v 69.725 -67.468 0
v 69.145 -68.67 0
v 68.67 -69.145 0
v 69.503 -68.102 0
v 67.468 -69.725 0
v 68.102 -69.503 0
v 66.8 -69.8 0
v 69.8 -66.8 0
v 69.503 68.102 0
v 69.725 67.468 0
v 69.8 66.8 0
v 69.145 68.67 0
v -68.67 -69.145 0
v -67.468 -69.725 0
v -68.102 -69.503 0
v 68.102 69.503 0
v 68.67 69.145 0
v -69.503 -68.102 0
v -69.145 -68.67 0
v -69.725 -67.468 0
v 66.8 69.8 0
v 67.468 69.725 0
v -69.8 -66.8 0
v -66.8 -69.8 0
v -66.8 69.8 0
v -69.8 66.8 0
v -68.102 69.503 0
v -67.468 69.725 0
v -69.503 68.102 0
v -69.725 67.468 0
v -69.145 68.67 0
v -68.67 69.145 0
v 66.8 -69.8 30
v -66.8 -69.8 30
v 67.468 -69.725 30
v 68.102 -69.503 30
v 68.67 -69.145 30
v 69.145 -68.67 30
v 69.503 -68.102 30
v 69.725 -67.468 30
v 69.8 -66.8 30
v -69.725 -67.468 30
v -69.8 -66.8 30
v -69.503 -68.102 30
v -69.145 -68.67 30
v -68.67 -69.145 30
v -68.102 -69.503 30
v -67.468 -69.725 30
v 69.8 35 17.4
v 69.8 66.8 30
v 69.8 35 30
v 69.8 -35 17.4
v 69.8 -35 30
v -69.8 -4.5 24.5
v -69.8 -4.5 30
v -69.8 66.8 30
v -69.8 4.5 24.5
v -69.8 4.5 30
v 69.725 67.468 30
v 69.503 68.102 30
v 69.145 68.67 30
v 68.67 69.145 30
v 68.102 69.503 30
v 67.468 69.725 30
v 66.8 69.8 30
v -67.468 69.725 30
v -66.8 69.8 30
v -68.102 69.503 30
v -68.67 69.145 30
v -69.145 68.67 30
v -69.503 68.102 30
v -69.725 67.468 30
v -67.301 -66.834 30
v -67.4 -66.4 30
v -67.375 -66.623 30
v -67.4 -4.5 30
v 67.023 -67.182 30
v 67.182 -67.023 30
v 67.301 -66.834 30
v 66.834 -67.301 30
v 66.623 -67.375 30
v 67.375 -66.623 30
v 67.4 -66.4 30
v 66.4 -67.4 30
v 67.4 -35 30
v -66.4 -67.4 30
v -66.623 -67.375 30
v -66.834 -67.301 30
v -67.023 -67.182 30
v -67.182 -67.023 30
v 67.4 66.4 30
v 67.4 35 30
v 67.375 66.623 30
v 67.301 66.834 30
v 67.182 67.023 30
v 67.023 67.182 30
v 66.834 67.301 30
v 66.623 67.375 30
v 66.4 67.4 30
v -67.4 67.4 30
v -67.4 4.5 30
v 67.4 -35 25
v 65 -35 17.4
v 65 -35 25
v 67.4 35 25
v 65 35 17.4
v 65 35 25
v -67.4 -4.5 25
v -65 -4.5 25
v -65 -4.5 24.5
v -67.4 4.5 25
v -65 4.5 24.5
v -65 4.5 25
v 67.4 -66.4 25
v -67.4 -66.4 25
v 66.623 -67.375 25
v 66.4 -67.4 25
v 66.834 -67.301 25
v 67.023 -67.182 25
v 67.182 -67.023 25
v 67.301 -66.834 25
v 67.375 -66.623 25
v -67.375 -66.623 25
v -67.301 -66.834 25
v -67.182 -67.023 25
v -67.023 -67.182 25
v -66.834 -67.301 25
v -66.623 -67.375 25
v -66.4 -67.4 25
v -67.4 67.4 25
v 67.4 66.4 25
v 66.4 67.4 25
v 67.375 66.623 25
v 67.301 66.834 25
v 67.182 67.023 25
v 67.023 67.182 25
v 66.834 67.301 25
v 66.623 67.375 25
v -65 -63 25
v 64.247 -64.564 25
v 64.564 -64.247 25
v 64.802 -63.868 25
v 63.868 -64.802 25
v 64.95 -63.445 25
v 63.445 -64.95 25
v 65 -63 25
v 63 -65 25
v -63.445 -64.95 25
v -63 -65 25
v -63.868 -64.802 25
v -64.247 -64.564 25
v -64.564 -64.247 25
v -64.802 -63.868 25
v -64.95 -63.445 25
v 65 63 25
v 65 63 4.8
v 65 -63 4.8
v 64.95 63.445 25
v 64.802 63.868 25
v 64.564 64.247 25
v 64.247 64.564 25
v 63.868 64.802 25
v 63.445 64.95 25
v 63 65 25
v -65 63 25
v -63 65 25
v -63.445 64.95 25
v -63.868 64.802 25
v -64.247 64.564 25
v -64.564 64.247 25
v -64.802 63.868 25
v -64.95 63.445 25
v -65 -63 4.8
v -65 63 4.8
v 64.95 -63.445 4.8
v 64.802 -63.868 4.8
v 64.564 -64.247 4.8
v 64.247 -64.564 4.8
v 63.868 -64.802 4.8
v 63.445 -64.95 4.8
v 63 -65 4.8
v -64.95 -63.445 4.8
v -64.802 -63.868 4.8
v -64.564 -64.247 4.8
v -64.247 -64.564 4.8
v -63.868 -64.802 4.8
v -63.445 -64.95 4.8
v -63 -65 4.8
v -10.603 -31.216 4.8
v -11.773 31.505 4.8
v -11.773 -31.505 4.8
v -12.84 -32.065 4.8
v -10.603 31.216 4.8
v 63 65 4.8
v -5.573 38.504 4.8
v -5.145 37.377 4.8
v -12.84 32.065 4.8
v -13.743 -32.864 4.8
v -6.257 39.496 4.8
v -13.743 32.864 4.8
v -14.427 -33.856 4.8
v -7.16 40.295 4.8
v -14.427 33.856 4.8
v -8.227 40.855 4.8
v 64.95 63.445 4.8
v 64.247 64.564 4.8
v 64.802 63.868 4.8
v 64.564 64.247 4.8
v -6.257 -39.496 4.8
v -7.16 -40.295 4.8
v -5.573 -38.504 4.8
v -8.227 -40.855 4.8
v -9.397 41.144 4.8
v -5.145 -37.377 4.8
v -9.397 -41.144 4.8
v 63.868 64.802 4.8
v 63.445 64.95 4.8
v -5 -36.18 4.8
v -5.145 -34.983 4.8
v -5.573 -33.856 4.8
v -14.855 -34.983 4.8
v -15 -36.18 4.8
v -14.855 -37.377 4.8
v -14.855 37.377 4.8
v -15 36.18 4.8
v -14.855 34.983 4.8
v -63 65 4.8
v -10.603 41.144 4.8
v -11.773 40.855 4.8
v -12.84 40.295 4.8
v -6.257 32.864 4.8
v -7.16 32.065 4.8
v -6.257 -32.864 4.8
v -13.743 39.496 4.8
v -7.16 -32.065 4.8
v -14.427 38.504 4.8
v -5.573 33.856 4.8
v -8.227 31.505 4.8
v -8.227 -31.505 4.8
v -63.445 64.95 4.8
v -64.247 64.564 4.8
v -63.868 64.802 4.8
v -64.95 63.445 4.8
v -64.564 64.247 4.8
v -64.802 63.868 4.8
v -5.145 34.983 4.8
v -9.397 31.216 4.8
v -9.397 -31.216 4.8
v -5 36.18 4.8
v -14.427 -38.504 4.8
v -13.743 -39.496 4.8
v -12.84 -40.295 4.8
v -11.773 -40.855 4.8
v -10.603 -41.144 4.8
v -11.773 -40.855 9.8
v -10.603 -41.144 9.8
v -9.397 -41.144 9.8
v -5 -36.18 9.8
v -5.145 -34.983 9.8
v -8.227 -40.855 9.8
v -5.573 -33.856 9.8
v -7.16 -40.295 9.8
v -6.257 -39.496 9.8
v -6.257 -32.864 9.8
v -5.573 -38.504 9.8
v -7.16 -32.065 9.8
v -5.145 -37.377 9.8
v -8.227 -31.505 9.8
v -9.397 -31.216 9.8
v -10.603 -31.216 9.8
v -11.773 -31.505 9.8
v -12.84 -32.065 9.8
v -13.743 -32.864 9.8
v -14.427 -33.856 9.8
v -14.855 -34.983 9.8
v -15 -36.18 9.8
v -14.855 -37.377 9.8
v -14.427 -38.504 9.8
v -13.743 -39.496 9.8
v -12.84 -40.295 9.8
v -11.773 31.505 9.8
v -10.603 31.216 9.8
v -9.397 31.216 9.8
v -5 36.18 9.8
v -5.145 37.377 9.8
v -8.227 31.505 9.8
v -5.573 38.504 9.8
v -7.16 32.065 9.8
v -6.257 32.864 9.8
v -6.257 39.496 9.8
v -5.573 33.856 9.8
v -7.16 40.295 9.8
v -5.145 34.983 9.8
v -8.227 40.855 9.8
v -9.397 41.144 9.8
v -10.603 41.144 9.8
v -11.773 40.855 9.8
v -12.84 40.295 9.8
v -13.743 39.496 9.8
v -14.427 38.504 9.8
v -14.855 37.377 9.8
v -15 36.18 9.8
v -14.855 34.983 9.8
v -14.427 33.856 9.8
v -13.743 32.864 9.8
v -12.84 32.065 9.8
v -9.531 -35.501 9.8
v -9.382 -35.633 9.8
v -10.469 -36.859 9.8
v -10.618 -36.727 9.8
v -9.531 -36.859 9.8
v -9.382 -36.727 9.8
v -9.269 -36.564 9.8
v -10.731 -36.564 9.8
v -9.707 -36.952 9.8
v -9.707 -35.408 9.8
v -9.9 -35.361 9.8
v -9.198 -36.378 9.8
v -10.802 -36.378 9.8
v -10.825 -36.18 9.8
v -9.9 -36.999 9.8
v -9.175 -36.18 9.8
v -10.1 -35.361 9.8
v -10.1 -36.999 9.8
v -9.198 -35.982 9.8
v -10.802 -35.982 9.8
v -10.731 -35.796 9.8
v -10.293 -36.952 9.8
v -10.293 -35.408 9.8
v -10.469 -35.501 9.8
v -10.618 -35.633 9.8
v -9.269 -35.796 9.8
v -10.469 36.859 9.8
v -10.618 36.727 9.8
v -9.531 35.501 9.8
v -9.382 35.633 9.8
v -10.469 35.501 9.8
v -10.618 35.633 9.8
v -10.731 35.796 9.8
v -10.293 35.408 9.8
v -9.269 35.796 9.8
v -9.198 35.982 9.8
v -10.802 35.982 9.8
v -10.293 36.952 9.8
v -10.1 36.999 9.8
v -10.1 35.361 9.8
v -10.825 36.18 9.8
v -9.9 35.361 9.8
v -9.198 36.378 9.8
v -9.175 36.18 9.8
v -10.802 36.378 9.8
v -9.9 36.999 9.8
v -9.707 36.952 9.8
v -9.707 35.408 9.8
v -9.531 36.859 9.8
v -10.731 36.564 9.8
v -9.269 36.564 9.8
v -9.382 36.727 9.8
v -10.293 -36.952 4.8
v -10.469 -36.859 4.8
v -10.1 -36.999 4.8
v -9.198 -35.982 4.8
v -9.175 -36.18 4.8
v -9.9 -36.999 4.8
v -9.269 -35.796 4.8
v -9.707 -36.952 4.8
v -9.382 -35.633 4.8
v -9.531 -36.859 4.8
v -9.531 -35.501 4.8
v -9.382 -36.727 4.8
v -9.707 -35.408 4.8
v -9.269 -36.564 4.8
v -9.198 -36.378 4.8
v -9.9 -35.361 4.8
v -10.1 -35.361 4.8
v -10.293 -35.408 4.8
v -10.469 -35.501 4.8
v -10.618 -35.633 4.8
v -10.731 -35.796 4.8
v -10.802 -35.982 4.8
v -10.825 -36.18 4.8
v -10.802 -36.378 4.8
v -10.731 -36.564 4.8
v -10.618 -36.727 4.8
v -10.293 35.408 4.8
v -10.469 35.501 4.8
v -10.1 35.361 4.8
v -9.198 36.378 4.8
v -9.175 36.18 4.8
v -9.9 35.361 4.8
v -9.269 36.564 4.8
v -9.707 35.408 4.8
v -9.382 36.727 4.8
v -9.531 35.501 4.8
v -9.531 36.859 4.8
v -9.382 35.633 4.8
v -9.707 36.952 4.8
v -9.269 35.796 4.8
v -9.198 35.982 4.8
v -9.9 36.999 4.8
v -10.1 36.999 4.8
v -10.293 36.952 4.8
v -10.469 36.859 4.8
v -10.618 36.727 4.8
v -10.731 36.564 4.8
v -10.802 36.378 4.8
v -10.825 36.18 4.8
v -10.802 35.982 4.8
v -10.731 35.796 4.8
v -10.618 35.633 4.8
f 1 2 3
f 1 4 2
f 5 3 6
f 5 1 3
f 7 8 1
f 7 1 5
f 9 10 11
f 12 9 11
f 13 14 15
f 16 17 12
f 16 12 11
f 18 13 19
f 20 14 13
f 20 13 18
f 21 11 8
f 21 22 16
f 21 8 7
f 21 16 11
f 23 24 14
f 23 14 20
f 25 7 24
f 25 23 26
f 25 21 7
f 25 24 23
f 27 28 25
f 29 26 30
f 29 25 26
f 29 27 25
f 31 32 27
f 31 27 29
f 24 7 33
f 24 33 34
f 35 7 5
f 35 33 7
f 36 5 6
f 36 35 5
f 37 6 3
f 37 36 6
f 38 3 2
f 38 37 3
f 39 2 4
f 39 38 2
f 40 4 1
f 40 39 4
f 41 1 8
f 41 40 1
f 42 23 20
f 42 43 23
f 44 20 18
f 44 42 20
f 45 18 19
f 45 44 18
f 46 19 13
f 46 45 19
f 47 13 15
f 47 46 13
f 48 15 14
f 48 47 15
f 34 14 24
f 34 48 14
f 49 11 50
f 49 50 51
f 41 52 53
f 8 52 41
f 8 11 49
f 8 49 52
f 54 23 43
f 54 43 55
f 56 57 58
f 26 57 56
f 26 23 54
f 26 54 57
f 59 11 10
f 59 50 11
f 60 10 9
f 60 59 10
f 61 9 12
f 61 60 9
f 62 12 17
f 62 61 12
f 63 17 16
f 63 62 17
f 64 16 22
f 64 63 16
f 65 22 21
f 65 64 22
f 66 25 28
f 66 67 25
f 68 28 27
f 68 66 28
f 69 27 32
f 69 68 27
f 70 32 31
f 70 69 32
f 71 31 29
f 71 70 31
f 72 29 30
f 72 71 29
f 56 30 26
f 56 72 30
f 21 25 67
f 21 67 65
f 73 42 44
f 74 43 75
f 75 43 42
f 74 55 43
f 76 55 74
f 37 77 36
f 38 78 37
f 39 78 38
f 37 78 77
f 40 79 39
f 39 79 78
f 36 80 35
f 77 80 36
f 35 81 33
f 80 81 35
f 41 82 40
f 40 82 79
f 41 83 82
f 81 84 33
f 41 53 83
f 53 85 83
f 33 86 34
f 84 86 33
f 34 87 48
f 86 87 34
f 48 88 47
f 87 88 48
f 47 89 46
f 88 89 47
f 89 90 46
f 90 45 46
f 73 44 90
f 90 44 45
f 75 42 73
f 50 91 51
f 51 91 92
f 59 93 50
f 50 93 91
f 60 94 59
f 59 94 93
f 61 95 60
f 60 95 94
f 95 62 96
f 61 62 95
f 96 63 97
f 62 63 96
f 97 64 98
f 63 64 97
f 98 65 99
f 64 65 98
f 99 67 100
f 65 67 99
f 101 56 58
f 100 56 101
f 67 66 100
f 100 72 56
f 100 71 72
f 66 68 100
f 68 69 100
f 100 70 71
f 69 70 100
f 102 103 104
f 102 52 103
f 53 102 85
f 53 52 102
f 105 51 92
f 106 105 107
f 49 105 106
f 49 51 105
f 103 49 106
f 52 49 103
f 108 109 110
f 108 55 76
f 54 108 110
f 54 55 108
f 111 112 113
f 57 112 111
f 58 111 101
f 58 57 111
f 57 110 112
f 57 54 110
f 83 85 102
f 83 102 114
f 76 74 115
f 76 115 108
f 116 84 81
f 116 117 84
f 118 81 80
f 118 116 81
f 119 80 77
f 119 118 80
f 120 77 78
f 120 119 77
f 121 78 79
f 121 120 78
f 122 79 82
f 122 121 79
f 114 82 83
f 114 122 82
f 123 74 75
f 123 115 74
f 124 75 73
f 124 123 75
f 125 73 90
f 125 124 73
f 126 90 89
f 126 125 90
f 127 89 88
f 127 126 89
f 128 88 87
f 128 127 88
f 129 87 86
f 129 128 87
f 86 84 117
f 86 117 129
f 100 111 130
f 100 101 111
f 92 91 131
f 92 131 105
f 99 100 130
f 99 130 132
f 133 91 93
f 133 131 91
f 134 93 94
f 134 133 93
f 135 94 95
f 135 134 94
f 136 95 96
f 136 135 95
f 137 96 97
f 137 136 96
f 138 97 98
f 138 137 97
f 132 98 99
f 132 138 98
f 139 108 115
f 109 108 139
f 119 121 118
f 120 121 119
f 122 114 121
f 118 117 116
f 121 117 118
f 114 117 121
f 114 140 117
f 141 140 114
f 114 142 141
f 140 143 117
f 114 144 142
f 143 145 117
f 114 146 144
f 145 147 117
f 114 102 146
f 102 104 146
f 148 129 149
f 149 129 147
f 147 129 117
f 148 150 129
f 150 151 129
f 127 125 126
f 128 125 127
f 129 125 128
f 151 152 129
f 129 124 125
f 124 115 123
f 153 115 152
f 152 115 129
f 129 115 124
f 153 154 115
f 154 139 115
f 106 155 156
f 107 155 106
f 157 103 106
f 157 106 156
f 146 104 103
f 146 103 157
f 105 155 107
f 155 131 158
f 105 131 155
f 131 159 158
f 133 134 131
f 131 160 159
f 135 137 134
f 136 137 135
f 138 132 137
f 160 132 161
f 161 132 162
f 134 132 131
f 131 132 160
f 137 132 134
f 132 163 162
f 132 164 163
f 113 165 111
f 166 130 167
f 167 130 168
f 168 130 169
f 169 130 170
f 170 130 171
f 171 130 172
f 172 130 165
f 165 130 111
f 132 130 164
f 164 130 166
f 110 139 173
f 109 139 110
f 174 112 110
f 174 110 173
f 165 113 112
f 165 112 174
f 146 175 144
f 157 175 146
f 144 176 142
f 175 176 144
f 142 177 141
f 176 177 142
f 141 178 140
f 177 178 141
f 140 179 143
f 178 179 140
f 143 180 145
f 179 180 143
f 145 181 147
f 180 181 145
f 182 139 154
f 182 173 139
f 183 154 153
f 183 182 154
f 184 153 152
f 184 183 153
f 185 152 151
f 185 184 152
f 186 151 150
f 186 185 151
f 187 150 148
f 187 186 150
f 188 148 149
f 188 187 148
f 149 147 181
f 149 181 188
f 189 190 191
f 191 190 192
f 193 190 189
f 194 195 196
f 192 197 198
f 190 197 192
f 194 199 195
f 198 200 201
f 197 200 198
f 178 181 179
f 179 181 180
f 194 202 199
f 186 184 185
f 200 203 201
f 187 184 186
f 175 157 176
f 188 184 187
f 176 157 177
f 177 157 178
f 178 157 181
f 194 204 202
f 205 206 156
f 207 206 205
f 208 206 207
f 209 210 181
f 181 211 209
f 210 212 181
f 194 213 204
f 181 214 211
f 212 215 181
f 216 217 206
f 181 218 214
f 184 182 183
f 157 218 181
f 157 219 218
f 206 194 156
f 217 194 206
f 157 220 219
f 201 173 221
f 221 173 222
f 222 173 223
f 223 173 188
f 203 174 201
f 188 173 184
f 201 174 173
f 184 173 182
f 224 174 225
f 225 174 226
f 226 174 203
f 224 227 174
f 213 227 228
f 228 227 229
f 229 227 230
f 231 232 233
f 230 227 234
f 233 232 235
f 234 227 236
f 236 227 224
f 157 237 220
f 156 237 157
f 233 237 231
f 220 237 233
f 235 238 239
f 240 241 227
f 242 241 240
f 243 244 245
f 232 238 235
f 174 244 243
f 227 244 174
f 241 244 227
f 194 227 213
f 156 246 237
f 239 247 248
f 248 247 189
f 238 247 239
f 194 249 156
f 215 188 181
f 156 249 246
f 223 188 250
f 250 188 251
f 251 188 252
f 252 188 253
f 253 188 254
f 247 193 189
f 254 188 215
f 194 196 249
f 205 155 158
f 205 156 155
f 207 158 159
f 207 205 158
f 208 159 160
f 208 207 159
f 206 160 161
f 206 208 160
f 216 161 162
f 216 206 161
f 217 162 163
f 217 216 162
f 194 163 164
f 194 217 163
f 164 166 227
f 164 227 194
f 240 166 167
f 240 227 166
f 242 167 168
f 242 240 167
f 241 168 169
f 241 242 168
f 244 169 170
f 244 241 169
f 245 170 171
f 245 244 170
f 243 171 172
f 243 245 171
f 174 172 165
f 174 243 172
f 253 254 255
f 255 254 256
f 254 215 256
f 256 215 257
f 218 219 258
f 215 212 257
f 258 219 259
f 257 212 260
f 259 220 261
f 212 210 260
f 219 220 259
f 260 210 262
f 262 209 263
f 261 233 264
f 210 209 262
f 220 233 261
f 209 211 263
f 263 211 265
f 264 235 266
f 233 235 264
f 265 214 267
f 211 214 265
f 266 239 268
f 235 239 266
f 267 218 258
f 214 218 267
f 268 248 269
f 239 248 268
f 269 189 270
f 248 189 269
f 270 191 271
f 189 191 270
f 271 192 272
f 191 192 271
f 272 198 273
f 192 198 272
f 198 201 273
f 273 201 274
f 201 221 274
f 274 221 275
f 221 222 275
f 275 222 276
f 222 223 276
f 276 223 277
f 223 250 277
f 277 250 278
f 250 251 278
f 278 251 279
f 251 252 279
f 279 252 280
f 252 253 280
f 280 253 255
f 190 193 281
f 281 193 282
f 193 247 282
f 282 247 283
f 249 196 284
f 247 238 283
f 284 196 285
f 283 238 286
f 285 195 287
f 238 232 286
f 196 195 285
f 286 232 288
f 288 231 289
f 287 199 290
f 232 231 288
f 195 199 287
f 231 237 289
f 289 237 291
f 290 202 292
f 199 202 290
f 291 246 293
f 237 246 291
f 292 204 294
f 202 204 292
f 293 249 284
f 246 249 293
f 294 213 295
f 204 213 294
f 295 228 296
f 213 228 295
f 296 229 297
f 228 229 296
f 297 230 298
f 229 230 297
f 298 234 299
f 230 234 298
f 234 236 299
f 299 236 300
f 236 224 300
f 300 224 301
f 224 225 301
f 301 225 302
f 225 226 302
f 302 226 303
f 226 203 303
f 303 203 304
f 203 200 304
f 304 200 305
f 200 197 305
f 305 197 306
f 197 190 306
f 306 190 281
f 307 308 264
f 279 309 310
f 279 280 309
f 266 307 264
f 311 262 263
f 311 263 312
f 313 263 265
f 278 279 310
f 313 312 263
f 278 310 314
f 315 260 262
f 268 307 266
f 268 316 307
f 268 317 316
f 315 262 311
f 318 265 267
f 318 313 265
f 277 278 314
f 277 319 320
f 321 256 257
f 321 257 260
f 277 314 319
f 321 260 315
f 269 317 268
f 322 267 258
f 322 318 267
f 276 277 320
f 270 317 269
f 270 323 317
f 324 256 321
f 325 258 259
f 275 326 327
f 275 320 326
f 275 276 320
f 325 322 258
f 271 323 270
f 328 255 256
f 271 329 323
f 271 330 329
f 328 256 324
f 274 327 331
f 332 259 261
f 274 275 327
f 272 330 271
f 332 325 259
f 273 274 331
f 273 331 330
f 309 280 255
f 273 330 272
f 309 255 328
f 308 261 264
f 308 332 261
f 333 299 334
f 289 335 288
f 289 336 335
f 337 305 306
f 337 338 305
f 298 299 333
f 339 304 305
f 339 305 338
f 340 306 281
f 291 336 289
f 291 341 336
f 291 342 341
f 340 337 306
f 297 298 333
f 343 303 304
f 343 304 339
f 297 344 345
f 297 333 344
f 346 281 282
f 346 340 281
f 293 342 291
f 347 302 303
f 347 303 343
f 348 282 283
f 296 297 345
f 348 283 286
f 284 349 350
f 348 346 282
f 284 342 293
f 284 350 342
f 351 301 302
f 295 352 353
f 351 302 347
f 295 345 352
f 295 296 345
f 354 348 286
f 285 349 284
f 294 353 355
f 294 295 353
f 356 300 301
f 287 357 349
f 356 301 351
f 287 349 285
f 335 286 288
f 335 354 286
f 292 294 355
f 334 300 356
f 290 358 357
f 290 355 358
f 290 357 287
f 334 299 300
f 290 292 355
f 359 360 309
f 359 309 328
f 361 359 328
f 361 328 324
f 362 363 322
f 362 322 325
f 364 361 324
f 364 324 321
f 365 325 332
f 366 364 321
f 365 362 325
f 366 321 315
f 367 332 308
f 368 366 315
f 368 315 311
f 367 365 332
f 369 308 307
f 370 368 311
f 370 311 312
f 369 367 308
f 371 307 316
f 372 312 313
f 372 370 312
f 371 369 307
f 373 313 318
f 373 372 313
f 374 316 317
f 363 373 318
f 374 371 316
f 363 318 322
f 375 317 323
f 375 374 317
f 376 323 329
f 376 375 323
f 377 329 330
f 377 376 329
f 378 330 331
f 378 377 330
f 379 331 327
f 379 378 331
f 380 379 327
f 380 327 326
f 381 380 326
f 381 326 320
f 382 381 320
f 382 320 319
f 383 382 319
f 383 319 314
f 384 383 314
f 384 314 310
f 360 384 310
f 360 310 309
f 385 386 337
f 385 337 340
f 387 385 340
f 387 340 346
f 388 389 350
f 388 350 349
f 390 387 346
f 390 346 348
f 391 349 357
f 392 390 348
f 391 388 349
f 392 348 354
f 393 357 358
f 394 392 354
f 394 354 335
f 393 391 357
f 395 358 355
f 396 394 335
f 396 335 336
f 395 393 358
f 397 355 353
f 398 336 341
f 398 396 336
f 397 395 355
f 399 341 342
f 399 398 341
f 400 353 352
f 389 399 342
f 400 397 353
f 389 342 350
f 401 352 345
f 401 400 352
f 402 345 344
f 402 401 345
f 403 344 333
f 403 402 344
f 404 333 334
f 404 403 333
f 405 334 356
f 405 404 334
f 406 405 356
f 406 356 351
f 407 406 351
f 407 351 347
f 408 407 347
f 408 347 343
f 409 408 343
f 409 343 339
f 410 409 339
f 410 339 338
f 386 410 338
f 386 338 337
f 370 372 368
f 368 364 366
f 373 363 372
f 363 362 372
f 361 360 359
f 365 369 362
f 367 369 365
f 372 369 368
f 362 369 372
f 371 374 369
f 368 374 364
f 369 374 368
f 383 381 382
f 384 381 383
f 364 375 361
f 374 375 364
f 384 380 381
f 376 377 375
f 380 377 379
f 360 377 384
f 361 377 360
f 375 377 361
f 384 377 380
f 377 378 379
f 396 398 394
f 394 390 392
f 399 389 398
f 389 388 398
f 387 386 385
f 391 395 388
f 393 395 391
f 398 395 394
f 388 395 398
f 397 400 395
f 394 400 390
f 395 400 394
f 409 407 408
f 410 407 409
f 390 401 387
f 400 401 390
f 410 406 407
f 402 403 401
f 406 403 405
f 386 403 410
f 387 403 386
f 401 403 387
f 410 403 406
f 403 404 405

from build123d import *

# Parameters (mm, degrees)
SKETCH001_W     = 139.6
SKETCH001_H     = 139.6
PAD_DEPTH       = 30
SKETCH002_W     = 130
SKETCH002_H     = 130
POCKET_DEPTH    = 25.2
SKETCH003_W     = 134.8
SKETCH003_H     = 134.8
POCKET001_DEPTH = 5
SKETCH004_R     = 5
SKETCH004_R_2   = 0.8255
PAD001_DEPTH    = 5
COPYSKETCH005_W = 70
COPYSKETCH005_H = 12.6
POCKET002_DEPTH = 5
SKETCH006_W     = 9
SKETCH006_H     = 5.5
POCKET003_DEPTH = 5
FILLET_R        = 2
FILLET001_R     = 2
FILLET002_R     = 2
FILLET003_R     = 2
FILLET004_R     = 1
FILLET005_R     = 1
FILLET006_R     = 1
FILLET007_R     = 3
FILLET008_R     = 3
FILLET009_R     = 3
FILLET010_R     = 3


with BuildPart() as part:
    # Sketch001 → Pad (new body)
    with BuildSketch(Plane.XY):
        Rectangle(SKETCH001_W, SKETCH001_H)
    extrude(amount=PAD_DEPTH)

    # Sketch002 (on Face6 of Pad) → Pocket (cut)
    with BuildSketch(Plane.XY.offset(30)):
        Rectangle(SKETCH002_W, SKETCH002_H)
    extrude(amount=-POCKET_DEPTH, mode=Mode.SUBTRACT)

    # Sketch003 (on Face5 of Pocket) → Pocket001 (cut)
    with BuildSketch(Plane.XY.offset(30)):
        Rectangle(SKETCH003_W, SKETCH003_H)
    extrude(amount=-POCKET001_DEPTH, mode=Mode.SUBTRACT)

    # Sketch004 (on Face16 of Pocket001) → Pad001 (join)
    with BuildSketch(Plane.XY.offset(4.8)):
        with Locations((-10, 36.18)):
            Circle(SKETCH004_R)
        with Locations((-10, 36.18)):
            Circle(SKETCH004_R_2, mode=Mode.SUBTRACT)
        with Locations((-10, -36.18)):
            Circle(SKETCH004_R)
        with Locations((-10, -36.18)):
            Circle(SKETCH004_R_2, mode=Mode.SUBTRACT)
    extrude(amount=PAD001_DEPTH)

    # CopySketch005 → Pocket002 (cut)
    with BuildSketch(Plane.YZ.offset(69.8)):
        with Locations((0, 23.7)):
            Rectangle(COPYSKETCH005_W, COPYSKETCH005_H)
    extrude(amount=-POCKET002_DEPTH, mode=Mode.SUBTRACT)

    # Sketch006 (on Face2 of Pocket002) → Pocket003 (cut)
    with BuildSketch(Plane(origin=(-69.8, 0, 0), x_dir=(0, -1, 0), z_dir=(-1, 0, 0))):
        with Locations((0, 27.25)):
            Rectangle(SKETCH006_W, SKETCH006_H)
    extrude(amount=-POCKET003_DEPTH, mode=Mode.SUBTRACT)

    # Fillet
    fillet_edges = [part.edges().sort_by_distance(p)[0] for p in [
        (65, -65, 14.9),
    ]]
    fillet(fillet_edges, radius=FILLET_R)

    # Fillet001
    fillet001_edges = [part.edges().sort_by_distance(p)[0] for p in [
        (65, 65, 14.9),
    ]]
    fillet(fillet001_edges, radius=FILLET001_R)

    # Fillet002
    fillet002_edges = [part.edges().sort_by_distance(p)[0] for p in [
        (-65, 65, 14.9),
    ]]
    fillet(fillet002_edges, radius=FILLET002_R)

    # Fillet003
    fillet003_edges = [part.edges().sort_by_distance(p)[0] for p in [
        (-65, -65, 14.9),
    ]]
    fillet(fillet003_edges, radius=FILLET003_R)

    # Fillet004
    fillet004_edges = [part.edges().sort_by_distance(p)[0] for p in [
        (-67.4, -67.4, 27.5),
    ]]
    fillet(fillet004_edges, radius=FILLET004_R)

    # Fillet005
    fillet005_edges = [part.edges().sort_by_distance(p)[0] for p in [
        (67.4, -67.4, 27.5),
    ]]
    fillet(fillet005_edges, radius=FILLET005_R)

    # Fillet006
    fillet006_edges = [part.edges().sort_by_distance(p)[0] for p in [
        (67.4, 67.4, 27.5),
    ]]
    fillet(fillet006_edges, radius=FILLET006_R)

    # Fillet007
    fillet007_edges = [part.edges().sort_by_distance(p)[0] for p in [
        (69.8, 69.8, 15),
    ]]
    fillet(fillet007_edges, radius=FILLET007_R)

    # Fillet008
    fillet008_edges = [part.edges().sort_by_distance(p)[0] for p in [
        (-69.8, 69.8, 15),
    ]]
    fillet(fillet008_edges, radius=FILLET008_R)

    # Fillet009
    fillet009_edges = [part.edges().sort_by_distance(p)[0] for p in [
        (-69.8, -69.8, 15),
    ]]
    fillet(fillet009_edges, radius=FILLET009_R)

    # Fillet010
    fillet010_edges = [part.edges().sort_by_distance(p)[0] for p in [
        (69.8, -69.8, 15),
    ]]
    fillet(fillet010_edges, radius=FILLET010_R)


solid = part.part
